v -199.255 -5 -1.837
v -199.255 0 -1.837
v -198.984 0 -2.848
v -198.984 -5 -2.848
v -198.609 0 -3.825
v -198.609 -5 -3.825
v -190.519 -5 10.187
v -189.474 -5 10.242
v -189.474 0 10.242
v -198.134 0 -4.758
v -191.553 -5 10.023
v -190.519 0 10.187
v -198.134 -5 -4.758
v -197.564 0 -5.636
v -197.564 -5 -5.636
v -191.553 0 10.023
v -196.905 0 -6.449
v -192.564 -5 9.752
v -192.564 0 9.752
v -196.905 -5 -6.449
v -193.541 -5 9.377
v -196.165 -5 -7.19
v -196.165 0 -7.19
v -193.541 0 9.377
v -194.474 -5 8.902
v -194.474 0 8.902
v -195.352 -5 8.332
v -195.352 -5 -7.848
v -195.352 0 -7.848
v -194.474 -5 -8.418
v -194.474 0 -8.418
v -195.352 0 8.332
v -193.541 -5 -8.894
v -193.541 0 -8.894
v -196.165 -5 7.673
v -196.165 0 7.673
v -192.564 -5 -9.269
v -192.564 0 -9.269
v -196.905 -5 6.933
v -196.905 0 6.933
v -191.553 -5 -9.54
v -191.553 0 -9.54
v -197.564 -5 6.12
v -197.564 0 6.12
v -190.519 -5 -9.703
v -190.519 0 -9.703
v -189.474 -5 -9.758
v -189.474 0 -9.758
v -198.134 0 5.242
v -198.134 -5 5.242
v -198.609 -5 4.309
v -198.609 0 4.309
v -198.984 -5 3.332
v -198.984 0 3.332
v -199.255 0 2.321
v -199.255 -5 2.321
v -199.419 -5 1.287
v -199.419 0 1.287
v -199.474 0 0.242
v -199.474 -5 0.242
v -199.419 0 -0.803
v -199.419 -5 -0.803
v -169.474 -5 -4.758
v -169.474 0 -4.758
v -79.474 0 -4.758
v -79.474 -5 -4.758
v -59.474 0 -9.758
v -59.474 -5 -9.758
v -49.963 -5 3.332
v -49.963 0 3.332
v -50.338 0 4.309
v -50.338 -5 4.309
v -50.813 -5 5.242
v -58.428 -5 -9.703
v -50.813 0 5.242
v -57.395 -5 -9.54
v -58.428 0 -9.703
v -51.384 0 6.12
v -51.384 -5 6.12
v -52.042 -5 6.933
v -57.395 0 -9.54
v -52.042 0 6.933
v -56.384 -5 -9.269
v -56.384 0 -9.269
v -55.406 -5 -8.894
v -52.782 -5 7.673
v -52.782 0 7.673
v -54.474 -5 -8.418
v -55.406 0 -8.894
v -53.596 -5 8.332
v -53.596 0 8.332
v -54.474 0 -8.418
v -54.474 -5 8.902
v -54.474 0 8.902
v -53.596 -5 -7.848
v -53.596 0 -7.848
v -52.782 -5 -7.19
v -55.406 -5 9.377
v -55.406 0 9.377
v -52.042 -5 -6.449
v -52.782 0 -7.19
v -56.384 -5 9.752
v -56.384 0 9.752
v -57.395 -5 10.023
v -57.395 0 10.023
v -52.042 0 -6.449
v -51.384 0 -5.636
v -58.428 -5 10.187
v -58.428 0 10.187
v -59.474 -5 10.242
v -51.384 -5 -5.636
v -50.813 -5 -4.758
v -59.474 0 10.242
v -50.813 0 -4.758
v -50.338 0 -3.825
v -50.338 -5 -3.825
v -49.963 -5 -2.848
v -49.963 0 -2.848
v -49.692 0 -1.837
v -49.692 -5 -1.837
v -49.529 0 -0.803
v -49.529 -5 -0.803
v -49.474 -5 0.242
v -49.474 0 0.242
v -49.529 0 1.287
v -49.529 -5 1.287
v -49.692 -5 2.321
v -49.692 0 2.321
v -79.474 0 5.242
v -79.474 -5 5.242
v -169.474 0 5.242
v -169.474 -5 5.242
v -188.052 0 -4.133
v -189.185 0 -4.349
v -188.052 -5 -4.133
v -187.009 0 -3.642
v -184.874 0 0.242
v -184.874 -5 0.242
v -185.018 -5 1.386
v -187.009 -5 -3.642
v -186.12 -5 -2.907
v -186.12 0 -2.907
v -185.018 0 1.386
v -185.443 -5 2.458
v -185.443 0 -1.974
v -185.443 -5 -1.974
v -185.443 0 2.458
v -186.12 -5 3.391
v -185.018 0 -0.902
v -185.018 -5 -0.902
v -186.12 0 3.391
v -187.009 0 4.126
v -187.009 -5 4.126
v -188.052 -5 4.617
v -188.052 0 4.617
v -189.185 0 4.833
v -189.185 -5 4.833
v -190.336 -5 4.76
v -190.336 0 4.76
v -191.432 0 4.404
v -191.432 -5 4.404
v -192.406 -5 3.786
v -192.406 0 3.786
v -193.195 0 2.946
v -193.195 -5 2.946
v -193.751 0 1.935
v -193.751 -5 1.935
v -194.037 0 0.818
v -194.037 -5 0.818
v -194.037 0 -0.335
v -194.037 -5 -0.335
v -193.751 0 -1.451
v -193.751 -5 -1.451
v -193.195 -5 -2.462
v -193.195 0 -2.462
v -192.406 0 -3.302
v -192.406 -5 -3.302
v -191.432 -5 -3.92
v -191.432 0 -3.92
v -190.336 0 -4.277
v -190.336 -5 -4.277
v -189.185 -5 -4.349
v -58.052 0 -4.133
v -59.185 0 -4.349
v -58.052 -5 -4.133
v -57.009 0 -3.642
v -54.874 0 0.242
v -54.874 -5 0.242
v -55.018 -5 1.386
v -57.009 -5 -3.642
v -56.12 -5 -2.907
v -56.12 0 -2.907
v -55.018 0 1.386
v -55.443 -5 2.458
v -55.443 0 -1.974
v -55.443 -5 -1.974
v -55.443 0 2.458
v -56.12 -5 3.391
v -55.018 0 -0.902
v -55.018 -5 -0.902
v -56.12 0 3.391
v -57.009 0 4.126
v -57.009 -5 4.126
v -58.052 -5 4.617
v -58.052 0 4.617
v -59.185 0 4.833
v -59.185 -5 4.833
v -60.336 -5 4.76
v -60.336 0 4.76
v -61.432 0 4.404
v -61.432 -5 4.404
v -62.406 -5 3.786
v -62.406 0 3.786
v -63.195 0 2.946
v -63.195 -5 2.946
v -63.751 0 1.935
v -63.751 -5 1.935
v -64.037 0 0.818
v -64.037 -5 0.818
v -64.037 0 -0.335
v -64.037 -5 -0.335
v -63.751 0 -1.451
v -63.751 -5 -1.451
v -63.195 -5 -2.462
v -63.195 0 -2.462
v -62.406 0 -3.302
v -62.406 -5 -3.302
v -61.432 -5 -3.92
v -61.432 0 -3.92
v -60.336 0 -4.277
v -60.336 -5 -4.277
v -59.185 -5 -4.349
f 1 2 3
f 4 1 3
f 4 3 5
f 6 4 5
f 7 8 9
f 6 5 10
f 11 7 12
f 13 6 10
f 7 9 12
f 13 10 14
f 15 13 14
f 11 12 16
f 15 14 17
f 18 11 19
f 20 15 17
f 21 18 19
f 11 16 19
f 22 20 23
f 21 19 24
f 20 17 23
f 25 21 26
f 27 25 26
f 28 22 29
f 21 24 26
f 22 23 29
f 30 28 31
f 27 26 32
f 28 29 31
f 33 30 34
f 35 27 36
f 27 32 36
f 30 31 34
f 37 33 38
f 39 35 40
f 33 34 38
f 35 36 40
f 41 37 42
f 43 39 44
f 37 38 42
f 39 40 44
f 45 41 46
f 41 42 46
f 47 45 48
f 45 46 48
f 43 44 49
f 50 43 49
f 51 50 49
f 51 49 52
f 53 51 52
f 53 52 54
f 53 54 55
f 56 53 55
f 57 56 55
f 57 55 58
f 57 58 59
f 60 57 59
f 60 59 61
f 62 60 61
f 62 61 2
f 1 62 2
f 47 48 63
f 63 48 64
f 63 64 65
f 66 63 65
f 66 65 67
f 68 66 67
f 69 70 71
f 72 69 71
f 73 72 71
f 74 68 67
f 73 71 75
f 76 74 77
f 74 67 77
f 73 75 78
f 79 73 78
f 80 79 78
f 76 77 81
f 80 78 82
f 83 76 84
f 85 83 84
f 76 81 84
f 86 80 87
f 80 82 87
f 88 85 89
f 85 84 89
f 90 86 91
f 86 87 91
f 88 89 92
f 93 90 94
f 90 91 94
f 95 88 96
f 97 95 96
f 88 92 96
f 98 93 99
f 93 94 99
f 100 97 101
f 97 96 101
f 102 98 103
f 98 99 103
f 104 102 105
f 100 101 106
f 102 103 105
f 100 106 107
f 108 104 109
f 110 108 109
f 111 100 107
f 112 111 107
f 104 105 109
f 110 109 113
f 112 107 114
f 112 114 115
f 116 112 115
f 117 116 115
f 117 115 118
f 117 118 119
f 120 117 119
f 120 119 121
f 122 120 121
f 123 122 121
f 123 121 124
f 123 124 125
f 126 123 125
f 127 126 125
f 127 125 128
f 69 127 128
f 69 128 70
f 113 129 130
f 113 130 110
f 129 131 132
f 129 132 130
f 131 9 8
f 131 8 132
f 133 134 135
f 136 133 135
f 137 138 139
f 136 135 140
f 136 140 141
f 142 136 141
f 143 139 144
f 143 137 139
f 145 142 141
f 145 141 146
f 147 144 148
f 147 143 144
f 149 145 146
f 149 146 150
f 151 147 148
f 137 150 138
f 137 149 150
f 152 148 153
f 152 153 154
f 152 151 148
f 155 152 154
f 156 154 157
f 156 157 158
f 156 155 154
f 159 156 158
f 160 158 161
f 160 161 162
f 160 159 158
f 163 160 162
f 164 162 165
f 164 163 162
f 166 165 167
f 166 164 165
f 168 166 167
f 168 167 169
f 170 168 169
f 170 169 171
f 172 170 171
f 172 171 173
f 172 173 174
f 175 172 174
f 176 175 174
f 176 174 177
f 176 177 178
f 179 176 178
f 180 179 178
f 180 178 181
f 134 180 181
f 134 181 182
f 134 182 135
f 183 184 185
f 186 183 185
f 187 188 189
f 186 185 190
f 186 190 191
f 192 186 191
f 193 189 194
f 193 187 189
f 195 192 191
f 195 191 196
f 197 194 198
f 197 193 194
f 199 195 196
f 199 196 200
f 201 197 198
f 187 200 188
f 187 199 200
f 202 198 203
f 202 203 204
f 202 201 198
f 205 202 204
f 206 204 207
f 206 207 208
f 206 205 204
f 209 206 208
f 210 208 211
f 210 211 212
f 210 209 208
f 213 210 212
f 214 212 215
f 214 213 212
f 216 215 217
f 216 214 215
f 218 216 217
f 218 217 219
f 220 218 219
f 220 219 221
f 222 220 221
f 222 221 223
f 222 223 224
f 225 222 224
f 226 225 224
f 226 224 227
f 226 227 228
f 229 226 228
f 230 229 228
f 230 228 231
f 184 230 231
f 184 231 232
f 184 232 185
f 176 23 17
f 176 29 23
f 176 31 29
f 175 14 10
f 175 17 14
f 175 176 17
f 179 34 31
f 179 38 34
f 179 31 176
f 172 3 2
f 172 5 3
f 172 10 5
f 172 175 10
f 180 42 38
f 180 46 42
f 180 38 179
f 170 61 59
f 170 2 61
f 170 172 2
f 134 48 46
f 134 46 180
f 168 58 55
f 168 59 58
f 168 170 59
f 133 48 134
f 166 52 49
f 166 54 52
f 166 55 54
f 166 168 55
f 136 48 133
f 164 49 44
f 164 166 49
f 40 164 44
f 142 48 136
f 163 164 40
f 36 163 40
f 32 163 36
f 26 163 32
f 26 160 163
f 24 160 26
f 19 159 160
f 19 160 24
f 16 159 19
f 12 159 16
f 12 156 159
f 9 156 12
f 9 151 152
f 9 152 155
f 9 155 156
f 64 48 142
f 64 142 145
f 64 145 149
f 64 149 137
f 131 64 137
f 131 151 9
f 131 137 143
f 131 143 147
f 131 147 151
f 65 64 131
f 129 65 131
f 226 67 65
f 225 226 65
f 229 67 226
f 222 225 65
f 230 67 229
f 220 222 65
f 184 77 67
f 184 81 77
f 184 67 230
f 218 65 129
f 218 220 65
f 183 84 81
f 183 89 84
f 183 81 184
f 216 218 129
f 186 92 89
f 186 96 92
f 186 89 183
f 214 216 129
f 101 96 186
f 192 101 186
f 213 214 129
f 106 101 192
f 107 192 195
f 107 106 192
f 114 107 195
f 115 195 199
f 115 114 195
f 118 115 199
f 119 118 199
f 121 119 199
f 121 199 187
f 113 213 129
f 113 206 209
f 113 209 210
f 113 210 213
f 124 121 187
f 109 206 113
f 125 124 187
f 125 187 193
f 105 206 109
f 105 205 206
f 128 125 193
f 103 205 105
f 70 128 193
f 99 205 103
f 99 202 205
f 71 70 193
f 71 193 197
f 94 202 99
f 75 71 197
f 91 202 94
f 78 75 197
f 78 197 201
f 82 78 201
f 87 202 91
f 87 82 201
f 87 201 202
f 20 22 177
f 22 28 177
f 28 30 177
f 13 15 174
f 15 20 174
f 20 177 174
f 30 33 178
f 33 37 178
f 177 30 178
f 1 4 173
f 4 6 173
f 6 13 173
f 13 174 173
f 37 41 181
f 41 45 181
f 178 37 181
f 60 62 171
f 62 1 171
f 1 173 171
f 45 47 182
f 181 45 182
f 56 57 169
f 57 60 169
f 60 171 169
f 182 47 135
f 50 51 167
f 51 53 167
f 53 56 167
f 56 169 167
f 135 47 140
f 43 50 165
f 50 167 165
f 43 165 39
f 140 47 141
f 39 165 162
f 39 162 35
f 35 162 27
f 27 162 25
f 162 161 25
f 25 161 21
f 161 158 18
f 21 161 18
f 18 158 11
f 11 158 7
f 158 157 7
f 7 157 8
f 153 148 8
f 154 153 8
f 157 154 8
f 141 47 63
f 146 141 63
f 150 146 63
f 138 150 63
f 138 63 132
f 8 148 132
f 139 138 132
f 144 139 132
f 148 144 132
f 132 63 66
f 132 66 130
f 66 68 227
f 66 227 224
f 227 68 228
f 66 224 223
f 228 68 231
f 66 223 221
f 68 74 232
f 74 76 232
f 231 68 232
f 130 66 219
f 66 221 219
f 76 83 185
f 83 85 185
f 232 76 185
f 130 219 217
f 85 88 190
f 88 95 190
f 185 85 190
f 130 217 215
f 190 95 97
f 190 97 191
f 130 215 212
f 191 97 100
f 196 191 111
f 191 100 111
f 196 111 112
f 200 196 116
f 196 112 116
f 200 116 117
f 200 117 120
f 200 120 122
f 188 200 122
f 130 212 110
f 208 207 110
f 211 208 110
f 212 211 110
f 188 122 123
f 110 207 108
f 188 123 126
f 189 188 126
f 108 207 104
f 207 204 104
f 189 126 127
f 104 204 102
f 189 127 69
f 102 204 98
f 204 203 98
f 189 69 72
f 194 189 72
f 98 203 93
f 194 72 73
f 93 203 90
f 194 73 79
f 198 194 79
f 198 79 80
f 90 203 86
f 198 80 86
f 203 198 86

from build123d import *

# Parameters (mm, degrees)
SKETCH_R     = 4.6
PAD001_DEPTH = 5


with BuildPart() as part:
    # Sketch → Pad001 (new body)
    with BuildSketch(Plane.XZ):
        with BuildLine():
            ThreePointArc((-59.473739, -9.758096), (-49.473739, 0.241904), (-59.473739, 10.241904))
            Line((-79.473739, 5.241904), (-59.473739, 10.241904))
            Line((-169.473739, 5.241904), (-79.473739, 5.241904))
            Line((-189.473739, 10.241904), (-169.473739, 5.241904))
            ThreePointArc((-189.473739, 10.241904), (-199.473739, 0.241904), (-189.473739, -9.758096))
            Line((-189.473739, -9.758096), (-169.473739, -4.758096))
            Line((-169.473739, -4.758096), (-79.473739, -4.758096))
            Line((-79.473739, -4.758096), (-59.473739, -9.758096))
        make_face()
        with Locations((-59.473739, 0.241904)):
            Circle(SKETCH_R, mode=Mode.SUBTRACT)
        with Locations((-189.473739, 0.241904)):
            Circle(SKETCH_R, mode=Mode.SUBTRACT)
    extrude(amount=PAD001_DEPTH)


solid = part.part
